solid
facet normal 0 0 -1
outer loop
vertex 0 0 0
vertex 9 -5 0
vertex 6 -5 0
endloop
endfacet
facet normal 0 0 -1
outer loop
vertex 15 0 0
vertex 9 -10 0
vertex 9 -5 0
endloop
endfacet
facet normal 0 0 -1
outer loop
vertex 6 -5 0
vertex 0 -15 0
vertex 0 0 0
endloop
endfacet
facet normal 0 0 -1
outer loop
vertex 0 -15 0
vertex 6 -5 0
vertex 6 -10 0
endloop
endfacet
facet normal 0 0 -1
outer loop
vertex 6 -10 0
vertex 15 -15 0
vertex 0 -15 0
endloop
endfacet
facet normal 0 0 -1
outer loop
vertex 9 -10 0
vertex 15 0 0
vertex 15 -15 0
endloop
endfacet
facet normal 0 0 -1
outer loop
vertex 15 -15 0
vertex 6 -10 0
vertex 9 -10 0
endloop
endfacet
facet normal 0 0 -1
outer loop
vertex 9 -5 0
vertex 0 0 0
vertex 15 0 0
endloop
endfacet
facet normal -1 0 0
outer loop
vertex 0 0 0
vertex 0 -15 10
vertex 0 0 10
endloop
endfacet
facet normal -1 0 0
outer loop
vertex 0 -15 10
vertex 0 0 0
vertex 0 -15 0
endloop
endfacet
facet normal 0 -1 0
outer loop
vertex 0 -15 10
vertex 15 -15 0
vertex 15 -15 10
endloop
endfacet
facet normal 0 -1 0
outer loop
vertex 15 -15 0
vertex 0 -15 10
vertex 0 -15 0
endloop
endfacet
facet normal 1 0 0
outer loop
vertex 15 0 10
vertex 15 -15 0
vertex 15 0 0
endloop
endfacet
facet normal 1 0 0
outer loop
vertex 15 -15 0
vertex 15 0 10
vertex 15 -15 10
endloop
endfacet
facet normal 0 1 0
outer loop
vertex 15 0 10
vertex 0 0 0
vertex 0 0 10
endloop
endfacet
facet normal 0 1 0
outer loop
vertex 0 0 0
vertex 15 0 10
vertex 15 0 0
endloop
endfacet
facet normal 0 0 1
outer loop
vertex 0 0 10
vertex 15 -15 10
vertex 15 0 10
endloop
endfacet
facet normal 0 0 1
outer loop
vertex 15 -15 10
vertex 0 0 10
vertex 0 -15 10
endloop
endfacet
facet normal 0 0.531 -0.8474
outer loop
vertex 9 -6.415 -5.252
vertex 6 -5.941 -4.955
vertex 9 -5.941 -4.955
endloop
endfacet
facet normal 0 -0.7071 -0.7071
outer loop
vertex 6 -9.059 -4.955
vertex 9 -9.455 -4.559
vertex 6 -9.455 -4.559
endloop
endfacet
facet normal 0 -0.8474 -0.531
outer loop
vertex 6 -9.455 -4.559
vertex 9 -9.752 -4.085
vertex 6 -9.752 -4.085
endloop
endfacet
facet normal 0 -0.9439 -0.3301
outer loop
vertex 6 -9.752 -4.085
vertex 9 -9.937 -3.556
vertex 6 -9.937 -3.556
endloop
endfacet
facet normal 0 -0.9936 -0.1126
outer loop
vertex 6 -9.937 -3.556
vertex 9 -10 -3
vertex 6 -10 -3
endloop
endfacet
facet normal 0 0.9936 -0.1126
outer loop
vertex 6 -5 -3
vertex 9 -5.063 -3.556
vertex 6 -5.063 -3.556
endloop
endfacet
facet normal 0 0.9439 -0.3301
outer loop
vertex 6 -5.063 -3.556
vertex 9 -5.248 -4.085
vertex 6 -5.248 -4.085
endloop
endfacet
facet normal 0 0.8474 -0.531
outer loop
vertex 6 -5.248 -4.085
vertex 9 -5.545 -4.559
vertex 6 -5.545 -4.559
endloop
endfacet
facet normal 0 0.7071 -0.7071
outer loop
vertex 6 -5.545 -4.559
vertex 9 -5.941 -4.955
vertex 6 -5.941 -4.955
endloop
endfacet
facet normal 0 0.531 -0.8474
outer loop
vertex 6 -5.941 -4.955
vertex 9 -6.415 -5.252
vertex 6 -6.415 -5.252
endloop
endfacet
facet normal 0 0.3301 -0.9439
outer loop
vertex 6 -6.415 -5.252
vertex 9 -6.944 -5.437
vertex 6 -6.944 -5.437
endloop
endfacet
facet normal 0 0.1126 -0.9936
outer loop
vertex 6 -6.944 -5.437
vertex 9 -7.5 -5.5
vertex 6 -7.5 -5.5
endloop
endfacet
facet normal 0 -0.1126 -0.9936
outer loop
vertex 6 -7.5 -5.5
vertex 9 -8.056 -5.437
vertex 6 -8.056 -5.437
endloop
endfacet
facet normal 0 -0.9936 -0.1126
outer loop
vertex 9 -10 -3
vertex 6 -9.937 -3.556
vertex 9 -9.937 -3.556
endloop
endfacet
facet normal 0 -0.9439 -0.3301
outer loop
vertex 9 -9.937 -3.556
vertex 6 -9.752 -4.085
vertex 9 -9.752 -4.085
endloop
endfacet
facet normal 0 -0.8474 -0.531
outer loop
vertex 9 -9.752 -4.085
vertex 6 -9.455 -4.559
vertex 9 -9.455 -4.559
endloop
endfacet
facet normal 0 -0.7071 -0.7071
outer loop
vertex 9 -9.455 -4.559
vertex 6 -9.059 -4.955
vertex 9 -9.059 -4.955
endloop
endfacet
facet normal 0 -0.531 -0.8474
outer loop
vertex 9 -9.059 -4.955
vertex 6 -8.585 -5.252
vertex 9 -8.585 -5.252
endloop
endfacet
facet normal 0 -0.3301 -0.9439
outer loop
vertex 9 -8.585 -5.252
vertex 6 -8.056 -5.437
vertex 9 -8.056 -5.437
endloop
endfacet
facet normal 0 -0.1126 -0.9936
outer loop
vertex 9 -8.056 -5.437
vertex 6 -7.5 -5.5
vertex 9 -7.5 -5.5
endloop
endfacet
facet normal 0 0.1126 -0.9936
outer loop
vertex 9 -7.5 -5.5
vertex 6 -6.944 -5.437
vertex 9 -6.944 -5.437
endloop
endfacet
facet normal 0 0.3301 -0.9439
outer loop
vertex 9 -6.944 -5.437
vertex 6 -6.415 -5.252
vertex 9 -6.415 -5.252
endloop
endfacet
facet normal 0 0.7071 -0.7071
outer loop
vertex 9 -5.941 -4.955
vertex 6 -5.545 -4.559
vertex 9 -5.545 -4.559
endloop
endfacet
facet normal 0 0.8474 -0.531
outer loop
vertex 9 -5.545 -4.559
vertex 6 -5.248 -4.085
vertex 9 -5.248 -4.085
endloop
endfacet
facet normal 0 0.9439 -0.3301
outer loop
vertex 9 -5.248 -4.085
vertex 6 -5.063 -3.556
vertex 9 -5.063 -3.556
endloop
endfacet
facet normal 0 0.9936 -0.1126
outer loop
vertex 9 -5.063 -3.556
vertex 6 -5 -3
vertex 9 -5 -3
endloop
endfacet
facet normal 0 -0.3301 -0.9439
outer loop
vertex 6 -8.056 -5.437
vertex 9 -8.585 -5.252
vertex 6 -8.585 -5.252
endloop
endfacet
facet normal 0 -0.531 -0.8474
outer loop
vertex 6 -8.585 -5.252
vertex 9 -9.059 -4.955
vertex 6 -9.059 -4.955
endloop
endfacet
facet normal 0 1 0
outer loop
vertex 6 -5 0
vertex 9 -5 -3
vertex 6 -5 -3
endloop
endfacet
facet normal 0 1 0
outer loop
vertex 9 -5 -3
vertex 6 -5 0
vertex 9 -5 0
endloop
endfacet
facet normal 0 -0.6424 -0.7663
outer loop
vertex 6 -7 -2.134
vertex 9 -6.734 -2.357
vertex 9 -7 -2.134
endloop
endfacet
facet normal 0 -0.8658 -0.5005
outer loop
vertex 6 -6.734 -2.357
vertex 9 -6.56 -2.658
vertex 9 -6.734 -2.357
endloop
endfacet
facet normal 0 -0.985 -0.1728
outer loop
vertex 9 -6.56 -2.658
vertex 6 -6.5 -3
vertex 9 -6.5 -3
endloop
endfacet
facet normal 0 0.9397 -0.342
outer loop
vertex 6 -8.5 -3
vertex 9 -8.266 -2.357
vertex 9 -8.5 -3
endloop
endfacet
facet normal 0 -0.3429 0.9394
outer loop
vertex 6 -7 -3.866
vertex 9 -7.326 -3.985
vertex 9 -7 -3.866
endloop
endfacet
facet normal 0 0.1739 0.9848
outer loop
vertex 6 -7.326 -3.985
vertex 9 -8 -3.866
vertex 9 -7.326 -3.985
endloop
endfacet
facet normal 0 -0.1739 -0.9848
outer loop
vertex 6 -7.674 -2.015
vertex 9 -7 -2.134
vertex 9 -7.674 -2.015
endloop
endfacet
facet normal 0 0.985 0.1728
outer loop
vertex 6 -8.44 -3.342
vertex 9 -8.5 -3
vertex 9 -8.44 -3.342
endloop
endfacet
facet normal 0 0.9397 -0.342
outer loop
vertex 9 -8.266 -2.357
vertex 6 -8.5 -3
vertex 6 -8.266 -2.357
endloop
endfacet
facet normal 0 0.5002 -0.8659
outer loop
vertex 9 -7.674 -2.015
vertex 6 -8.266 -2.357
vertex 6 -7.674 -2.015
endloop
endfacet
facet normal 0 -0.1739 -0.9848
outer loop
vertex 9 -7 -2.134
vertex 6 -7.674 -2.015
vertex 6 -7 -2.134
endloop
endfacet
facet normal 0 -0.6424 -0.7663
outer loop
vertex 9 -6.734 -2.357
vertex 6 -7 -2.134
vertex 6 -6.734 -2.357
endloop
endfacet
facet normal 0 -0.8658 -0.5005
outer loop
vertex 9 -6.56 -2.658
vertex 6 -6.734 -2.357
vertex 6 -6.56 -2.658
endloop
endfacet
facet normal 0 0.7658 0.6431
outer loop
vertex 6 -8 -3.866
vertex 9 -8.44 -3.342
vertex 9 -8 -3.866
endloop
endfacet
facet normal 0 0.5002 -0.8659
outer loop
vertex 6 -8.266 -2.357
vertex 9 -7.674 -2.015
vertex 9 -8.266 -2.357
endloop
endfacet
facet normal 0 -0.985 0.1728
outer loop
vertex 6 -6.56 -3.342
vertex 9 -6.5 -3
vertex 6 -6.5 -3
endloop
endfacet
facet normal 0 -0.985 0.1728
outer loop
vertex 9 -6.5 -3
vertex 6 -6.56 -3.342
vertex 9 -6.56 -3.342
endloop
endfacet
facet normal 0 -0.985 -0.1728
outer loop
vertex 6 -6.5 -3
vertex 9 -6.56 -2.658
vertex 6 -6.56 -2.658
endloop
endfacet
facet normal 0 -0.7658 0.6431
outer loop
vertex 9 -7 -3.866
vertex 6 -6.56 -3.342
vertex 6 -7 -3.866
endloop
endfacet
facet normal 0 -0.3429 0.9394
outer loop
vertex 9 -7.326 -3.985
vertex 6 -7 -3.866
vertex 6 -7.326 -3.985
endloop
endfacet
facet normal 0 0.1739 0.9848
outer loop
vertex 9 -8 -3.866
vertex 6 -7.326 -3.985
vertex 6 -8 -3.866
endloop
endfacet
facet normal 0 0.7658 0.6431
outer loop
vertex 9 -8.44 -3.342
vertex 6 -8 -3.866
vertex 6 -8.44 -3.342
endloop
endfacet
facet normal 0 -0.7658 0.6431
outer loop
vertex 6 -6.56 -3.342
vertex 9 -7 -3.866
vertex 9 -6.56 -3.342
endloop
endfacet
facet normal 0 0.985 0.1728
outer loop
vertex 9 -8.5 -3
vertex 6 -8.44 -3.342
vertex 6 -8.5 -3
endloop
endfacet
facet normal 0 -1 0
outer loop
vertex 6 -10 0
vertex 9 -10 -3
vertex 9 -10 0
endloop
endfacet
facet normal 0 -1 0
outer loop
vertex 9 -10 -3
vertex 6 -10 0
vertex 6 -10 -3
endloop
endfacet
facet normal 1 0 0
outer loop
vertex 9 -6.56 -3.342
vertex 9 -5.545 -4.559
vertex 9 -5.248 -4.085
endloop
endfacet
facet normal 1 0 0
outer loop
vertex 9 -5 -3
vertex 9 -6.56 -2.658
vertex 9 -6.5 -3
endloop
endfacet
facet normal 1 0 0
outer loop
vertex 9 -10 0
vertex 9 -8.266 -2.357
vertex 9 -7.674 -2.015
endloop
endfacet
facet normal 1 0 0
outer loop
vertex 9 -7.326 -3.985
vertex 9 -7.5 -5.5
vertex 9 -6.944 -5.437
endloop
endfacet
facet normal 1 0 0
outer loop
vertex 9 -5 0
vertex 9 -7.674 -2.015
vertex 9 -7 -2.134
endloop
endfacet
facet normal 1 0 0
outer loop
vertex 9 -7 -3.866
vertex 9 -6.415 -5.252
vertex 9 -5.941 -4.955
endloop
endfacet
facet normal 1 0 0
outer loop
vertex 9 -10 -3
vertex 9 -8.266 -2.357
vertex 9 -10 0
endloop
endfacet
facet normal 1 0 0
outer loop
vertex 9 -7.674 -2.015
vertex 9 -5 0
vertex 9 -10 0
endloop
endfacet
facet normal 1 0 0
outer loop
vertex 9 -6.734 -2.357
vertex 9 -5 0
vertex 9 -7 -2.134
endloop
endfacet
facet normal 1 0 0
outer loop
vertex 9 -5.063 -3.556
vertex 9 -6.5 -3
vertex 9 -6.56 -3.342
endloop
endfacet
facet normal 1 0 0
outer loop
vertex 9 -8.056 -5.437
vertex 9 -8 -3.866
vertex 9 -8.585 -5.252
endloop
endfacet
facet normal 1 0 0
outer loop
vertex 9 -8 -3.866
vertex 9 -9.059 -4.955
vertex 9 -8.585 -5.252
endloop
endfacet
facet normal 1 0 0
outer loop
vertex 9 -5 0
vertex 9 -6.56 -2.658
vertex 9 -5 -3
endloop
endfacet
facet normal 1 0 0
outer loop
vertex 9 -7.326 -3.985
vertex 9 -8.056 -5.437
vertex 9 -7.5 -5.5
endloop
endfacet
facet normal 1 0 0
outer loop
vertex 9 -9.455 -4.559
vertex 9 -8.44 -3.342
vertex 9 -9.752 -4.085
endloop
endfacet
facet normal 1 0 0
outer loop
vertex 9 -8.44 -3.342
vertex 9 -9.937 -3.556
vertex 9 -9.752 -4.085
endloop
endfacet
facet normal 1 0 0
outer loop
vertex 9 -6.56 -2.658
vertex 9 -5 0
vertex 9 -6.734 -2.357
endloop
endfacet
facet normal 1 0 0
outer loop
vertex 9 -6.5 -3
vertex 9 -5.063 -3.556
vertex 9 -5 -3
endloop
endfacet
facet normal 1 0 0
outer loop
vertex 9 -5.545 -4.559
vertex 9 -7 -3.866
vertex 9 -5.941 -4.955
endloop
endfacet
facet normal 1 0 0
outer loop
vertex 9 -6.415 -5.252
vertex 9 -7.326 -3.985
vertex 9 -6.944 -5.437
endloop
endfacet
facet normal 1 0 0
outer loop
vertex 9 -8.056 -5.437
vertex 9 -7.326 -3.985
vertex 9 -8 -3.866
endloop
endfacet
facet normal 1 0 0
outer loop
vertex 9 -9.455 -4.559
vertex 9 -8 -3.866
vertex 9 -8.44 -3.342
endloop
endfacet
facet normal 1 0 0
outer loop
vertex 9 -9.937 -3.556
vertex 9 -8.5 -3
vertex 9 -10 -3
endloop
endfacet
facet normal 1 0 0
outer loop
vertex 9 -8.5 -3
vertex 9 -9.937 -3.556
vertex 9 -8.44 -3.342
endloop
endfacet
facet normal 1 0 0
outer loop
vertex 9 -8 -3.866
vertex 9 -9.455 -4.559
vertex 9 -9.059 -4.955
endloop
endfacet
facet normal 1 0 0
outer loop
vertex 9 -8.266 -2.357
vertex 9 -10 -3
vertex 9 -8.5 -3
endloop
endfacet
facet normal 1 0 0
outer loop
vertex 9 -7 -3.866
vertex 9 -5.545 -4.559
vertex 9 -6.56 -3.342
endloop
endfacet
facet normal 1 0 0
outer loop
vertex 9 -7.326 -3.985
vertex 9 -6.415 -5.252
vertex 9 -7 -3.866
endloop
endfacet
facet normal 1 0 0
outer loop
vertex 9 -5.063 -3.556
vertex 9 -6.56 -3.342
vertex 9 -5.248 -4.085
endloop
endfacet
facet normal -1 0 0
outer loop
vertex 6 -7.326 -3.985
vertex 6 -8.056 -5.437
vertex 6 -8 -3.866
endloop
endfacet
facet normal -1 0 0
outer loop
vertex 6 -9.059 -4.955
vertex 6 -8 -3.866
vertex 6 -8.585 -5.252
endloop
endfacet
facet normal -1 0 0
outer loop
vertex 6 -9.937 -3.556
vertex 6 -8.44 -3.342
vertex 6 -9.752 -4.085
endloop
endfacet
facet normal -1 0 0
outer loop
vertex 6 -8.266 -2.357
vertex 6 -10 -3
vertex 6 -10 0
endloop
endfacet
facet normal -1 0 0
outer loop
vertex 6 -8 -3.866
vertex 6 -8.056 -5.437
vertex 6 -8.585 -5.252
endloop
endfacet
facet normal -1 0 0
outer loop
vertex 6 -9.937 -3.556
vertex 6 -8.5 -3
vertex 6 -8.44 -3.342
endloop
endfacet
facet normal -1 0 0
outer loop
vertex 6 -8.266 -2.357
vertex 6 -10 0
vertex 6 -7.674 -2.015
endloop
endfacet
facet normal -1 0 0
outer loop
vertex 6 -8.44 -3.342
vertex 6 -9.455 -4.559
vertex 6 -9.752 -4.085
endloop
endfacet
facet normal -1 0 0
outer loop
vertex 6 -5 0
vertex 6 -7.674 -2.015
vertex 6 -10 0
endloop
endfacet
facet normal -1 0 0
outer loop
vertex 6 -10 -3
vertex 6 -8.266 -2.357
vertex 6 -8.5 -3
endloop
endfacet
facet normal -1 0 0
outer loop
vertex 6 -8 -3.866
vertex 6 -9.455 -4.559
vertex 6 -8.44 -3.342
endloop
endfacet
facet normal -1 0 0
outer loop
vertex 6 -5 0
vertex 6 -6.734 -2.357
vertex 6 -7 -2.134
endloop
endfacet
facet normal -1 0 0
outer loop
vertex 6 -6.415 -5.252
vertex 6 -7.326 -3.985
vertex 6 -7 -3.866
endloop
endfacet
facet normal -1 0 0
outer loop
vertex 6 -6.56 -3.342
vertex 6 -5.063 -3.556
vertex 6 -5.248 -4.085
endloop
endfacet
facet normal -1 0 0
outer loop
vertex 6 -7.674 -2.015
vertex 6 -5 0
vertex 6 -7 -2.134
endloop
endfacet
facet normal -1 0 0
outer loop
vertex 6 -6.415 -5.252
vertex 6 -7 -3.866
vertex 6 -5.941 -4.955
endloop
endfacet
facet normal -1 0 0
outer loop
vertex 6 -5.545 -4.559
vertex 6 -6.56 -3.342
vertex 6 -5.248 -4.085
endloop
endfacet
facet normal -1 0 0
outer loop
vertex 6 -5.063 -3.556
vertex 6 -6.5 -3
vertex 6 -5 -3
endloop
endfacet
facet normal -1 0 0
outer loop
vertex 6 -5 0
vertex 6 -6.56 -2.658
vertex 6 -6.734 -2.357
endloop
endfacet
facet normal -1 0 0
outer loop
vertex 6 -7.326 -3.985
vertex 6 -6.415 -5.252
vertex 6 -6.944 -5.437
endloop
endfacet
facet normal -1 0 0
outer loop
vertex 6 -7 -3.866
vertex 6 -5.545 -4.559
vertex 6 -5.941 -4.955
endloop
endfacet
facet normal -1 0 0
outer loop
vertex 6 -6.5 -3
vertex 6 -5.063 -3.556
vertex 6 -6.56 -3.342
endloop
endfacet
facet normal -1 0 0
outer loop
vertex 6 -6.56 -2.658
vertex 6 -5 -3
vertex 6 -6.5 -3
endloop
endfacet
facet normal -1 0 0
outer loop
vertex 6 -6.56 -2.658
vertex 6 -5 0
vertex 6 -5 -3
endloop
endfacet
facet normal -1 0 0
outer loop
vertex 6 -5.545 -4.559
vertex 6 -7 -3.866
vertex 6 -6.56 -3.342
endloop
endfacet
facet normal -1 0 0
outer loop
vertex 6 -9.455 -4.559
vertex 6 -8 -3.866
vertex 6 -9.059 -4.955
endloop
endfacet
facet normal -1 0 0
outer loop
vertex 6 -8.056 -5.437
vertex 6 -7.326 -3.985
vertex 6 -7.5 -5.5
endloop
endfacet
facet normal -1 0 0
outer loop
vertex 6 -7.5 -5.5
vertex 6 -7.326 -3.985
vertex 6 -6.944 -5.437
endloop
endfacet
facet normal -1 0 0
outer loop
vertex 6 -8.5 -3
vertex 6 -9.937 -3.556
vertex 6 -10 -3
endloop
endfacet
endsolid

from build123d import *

# Parameters (mm, degrees)
SKETCH1_W           = 15
SKETCH1_H           = 15
BOSS_EXTRUDE1_DEPTH = 10
BOSS_EXTRUDE2_DEPTH = 1.5


with BuildPart() as part:
    # Sketch1 → Boss-Extrude1 (new body)
    with BuildSketch(Plane.XY):
        with Locations((7.5, -7.5)):
            Rectangle(SKETCH1_W, SKETCH1_H)
    extrude(amount=BOSS_EXTRUDE1_DEPTH)

    # Sketch2 → Boss-Extrude2 (add, symmetric)
    with BuildSketch(Plane(origin=(7.5, 0, 0), x_dir=(0, 0, -1), z_dir=(1, 0, 0))):
        with BuildLine():
            ThreePointArc((3, -5), (0.5, -7.5), (3, -10))
            Line((3, -10), (3, -8.5))
            ThreePointArc((3, -8.5), (2, -7.5), (3, -6.5))
            Line((3, -6.5), (3, -5))
        make_face()
        with BuildLine():
            Line((3, -8.5), (3, -10))
            ThreePointArc((3, -10), (4.767766953, -9.267766953), (5.5, -7.5))
            ThreePointArc((5.5, -7.5), (4.767766953, -5.732233047), (3, -5))
            Line((3, -5), (3, -6.5))
            ThreePointArc((3, -6.5), (3.707106781, -6.792893219), (4, -7.5))
            ThreePointArc((4, -7.5), (3.707106781, -8.207106781), (3, -8.5))
        make_face()
        with BuildLine():
            Line((0, -10), (3, -10))
            ThreePointArc((3, -10), (0.5, -7.5), (3, -5))
            Line((3, -5), (0, -5))
            Line((0, -5), (0, -10))
        make_face()
    extrude(amount=BOSS_EXTRUDE2_DEPTH, both=True)


solid = part.part
